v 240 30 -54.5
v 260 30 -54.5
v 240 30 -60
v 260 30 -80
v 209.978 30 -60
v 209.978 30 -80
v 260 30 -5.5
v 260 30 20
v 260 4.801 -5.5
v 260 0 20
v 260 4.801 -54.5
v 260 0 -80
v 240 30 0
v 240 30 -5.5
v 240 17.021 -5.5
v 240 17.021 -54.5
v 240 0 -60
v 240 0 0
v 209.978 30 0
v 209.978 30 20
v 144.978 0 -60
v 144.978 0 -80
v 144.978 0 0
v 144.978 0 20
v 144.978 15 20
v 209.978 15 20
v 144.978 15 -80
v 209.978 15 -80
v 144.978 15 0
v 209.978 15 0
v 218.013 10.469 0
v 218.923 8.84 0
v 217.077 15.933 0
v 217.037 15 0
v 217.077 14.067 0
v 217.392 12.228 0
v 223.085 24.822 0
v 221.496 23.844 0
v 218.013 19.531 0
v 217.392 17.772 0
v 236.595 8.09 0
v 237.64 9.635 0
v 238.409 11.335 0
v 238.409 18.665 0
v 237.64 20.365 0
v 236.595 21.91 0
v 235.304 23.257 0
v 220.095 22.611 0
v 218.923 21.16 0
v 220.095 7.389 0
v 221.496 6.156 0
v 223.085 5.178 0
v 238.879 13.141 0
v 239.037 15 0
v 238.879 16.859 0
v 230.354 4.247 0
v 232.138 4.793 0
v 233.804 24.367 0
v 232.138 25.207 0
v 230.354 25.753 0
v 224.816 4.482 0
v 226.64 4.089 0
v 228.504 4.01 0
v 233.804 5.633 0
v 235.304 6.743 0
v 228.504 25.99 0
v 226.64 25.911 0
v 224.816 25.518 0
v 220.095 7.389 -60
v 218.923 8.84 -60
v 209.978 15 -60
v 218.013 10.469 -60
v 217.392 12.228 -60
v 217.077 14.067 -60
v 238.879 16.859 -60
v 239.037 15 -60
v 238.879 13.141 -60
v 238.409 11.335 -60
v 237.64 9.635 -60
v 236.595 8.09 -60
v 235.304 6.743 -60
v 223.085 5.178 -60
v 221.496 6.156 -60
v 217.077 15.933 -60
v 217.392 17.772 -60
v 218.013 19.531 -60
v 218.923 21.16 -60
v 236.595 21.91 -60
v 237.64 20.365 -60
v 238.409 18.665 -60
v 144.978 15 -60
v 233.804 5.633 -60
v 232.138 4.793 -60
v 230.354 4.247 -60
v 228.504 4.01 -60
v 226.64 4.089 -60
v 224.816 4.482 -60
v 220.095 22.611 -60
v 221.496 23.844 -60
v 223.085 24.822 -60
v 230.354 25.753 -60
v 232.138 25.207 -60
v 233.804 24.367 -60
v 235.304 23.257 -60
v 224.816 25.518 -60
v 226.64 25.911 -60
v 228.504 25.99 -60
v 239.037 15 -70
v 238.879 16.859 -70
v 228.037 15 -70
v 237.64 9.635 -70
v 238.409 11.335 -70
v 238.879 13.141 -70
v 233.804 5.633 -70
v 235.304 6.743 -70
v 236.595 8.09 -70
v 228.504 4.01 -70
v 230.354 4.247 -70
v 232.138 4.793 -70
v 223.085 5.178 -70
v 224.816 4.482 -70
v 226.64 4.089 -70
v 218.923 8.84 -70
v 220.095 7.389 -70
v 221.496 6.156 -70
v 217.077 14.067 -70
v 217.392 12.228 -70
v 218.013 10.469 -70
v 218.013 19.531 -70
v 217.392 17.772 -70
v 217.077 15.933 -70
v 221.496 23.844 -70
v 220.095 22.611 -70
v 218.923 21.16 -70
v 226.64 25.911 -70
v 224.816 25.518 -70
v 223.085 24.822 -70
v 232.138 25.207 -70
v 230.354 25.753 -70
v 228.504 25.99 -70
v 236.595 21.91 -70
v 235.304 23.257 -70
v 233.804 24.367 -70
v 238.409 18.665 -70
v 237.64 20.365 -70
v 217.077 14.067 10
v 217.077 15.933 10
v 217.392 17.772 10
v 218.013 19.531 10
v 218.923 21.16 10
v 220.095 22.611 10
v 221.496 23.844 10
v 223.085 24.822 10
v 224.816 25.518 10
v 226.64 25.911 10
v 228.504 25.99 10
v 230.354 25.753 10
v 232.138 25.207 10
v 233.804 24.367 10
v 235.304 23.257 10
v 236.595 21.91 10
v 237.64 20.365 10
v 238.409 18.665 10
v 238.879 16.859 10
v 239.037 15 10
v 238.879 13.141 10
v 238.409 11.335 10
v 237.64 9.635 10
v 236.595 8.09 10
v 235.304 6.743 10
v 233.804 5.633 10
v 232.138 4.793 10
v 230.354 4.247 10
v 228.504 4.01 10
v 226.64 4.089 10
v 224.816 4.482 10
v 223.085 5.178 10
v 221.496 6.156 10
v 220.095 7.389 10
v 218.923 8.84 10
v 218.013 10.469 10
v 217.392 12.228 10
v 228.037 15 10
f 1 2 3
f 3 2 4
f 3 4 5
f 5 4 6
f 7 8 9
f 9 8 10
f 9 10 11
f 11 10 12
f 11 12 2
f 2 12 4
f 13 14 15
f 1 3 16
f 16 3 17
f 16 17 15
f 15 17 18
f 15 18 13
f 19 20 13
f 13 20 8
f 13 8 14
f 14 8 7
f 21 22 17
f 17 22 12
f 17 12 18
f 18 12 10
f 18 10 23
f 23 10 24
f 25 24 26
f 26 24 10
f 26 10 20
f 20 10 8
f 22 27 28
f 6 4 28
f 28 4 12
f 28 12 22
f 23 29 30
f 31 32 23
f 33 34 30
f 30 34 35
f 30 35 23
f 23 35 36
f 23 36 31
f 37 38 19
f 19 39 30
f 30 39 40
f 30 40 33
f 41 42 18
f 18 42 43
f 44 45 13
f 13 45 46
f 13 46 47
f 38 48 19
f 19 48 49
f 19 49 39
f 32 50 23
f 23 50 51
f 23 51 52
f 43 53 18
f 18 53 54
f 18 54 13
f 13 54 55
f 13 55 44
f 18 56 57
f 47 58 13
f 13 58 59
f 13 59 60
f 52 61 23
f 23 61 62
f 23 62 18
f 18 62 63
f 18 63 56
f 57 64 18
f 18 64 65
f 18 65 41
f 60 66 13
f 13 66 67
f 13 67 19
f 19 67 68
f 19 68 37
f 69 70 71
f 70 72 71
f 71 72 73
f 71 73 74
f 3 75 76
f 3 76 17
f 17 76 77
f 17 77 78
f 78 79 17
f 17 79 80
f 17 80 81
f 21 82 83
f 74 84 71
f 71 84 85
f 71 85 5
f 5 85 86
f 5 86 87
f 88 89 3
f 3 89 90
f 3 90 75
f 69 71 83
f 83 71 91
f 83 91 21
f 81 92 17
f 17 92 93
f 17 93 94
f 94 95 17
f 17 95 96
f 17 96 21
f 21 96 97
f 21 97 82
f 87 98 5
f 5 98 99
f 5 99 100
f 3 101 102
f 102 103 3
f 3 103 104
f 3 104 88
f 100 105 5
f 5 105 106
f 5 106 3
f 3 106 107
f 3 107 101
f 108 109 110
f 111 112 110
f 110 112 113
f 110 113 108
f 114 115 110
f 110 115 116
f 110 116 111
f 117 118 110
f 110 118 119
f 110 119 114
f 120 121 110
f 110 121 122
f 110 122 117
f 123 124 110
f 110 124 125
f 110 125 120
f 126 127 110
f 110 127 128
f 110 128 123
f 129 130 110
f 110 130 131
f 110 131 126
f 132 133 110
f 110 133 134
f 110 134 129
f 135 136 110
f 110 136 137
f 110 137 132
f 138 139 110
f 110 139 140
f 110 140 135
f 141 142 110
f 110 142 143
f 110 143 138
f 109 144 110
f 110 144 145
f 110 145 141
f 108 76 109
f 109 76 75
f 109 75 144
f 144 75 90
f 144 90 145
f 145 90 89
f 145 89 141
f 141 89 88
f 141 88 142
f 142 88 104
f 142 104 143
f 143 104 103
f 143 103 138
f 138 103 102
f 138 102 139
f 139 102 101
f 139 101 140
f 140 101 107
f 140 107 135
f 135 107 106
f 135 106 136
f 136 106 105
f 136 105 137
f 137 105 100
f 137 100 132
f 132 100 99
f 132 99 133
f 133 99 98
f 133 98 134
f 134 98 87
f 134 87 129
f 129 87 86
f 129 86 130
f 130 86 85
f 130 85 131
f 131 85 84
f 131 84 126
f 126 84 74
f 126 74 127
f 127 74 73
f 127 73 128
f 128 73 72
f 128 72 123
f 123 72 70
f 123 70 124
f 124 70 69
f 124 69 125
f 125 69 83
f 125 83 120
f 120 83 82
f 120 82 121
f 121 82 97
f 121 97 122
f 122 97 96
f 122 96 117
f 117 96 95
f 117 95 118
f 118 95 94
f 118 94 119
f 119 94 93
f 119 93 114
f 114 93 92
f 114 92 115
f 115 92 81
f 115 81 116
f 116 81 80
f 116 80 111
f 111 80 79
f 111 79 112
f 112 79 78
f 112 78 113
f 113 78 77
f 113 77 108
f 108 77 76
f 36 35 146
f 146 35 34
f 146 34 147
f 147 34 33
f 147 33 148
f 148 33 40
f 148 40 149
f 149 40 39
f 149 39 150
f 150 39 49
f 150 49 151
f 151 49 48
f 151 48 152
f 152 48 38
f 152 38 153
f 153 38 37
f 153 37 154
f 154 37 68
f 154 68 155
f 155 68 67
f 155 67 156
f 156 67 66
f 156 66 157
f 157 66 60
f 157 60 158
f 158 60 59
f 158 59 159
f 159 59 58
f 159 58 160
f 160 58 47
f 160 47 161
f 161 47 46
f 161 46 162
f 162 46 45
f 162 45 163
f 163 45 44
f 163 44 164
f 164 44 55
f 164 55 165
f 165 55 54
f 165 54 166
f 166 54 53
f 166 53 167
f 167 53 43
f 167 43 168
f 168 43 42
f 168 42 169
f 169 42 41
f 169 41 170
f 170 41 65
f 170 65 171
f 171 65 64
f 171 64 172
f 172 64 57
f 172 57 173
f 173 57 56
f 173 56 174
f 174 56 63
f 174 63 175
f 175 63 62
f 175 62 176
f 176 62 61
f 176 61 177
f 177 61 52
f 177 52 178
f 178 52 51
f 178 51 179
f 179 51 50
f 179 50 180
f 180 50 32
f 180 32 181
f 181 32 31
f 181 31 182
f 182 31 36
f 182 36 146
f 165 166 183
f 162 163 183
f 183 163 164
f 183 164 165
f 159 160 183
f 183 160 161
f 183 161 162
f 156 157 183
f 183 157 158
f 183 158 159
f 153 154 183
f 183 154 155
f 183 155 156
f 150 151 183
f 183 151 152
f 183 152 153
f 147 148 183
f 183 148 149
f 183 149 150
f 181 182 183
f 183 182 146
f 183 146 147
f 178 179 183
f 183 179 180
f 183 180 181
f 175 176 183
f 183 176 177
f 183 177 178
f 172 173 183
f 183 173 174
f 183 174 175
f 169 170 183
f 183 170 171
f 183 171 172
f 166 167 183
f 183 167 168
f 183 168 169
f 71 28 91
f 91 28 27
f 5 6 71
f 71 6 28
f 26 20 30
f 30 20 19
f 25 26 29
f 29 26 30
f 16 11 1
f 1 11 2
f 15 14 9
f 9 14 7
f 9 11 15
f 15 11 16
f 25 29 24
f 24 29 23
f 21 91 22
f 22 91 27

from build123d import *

# Parameters (mm, degrees)
IZIM1_W                          = 280
IZIM1_H                          = 100
IZIM1_W_2                        = 240
IZIM1_H_2                        = 60
Y_KSEKLIK_EKSTR_ZYON1_DEPTH      = 30
IZIM4_R                          = 11
KES_EKSTR_ZYON1_DEPTH            = 40
IZIM5_W                          = 65
IZIM5_H                          = 15
KES_EKSTR_ZYON2_DEPTH            = 119
KES_EKSTR_ZYON3_DEPTH            = 24.5
Y_KSEKLIK_EKSTR_ZYON4_DEPTH      = 8
Y_KSEKLIK_EKSTR_ZYON4_DEPTH_BACK = 1
IZIM13_R                         = 7.75
KES_EKSTR_ZYON4_DEPTH            = 18
IZIM14_W                         = 170.35585657
IZIM14_H                         = 104.641272027
KES_EKSTR_ZYON6_DEPTH            = 136


with BuildPart() as part:
    # Çizim1 → Yükseklik-Ekstrüzyon1 (new body)
    with BuildSketch(Plane(origin=(0, 0, 0), x_dir=(1, 0, 0), z_dir=(0, 1, 0))):
        with Locations((120, 30)):
            Rectangle(IZIM1_W, IZIM1_H)
        with Locations((120, 30)):
            Rectangle(IZIM1_W_2, IZIM1_H_2, mode=Mode.SUBTRACT)
    extrude(amount=Y_KSEKLIK_EKSTR_ZYON1_DEPTH)

    # Çizim4 → Kes-Ekstrüzyon1 (cut, symmetric)
    with BuildSketch(Plane.XY.offset(-30)):
        with Locations((228.036930768, 15)):
            Circle(IZIM4_R)
        with Locations((16.579541137, 15)):
            Circle(IZIM4_R)
        with Locations((95.469880506, 15)):
            Circle(IZIM4_R)
    extrude(amount=KES_EKSTR_ZYON1_DEPTH, both=True, mode=Mode.SUBTRACT)

    # Çizim5 → Kes-Ekstrüzyon2 (cut)
    with BuildSketch(Plane.XY.offset(20)):
        with Locations((177.478221097, 22.5)):
            Rectangle(IZIM5_W, IZIM5_H)
    extrude(amount=-KES_EKSTR_ZYON2_DEPTH, mode=Mode.SUBTRACT)

    # Çizim6 → Kes-Ekstrüzyon3 (cut, symmetric)
    with BuildSketch(Plane.XY.offset(-30)):
        Polygon((260, 31.552276972), (234.133246527, 31.552276972), (234.359911555, 20.467639669), (260, 4.801073138), align=None)
    extrude(amount=KES_EKSTR_ZYON3_DEPTH, both=True, mode=Mode.SUBTRACT)

    # Çizim10 → Yükseklik-Ekstrüzyon4 (add, two sides: drawn at the far end of the back side and taken through both)
    with BuildSketch(Plane(origin=(0, 22, 0), x_dir=(1, 0, 0), z_dir=(0, 1, 0)).offset(-Y_KSEKLIK_EKSTR_ZYON4_DEPTH_BACK)):
        Polygon((55.057032044, 60), (144.978221097, 21.175943648), (144.978221097, 60), align=None)
    extrude(amount=Y_KSEKLIK_EKSTR_ZYON4_DEPTH + Y_KSEKLIK_EKSTR_ZYON4_DEPTH_BACK)

    # Çizim13 → Kes-Ekstrüzyon4 (cut)
    with BuildSketch(Plane(origin=(0, 0, -80), x_dir=(-1, 0, 0), z_dir=(0, 0, -1))):
        with Locations((-16.579541137, 15)):
            Circle(IZIM13_R)
    extrude(amount=-KES_EKSTR_ZYON4_DEPTH, mode=Mode.SUBTRACT)

    # Çizim14 → Kes-Ekstrüzyon6 (cut)
    with BuildSketch(Plane(origin=(0, 30, 0), x_dir=(1, 0, 0), z_dir=(0, 1, 0))):
        with Locations((59.800292812, 32.320636013)):
            Rectangle(IZIM14_W, IZIM14_H)
    extrude(amount=-KES_EKSTR_ZYON6_DEPTH, mode=Mode.SUBTRACT)


solid = part.part
